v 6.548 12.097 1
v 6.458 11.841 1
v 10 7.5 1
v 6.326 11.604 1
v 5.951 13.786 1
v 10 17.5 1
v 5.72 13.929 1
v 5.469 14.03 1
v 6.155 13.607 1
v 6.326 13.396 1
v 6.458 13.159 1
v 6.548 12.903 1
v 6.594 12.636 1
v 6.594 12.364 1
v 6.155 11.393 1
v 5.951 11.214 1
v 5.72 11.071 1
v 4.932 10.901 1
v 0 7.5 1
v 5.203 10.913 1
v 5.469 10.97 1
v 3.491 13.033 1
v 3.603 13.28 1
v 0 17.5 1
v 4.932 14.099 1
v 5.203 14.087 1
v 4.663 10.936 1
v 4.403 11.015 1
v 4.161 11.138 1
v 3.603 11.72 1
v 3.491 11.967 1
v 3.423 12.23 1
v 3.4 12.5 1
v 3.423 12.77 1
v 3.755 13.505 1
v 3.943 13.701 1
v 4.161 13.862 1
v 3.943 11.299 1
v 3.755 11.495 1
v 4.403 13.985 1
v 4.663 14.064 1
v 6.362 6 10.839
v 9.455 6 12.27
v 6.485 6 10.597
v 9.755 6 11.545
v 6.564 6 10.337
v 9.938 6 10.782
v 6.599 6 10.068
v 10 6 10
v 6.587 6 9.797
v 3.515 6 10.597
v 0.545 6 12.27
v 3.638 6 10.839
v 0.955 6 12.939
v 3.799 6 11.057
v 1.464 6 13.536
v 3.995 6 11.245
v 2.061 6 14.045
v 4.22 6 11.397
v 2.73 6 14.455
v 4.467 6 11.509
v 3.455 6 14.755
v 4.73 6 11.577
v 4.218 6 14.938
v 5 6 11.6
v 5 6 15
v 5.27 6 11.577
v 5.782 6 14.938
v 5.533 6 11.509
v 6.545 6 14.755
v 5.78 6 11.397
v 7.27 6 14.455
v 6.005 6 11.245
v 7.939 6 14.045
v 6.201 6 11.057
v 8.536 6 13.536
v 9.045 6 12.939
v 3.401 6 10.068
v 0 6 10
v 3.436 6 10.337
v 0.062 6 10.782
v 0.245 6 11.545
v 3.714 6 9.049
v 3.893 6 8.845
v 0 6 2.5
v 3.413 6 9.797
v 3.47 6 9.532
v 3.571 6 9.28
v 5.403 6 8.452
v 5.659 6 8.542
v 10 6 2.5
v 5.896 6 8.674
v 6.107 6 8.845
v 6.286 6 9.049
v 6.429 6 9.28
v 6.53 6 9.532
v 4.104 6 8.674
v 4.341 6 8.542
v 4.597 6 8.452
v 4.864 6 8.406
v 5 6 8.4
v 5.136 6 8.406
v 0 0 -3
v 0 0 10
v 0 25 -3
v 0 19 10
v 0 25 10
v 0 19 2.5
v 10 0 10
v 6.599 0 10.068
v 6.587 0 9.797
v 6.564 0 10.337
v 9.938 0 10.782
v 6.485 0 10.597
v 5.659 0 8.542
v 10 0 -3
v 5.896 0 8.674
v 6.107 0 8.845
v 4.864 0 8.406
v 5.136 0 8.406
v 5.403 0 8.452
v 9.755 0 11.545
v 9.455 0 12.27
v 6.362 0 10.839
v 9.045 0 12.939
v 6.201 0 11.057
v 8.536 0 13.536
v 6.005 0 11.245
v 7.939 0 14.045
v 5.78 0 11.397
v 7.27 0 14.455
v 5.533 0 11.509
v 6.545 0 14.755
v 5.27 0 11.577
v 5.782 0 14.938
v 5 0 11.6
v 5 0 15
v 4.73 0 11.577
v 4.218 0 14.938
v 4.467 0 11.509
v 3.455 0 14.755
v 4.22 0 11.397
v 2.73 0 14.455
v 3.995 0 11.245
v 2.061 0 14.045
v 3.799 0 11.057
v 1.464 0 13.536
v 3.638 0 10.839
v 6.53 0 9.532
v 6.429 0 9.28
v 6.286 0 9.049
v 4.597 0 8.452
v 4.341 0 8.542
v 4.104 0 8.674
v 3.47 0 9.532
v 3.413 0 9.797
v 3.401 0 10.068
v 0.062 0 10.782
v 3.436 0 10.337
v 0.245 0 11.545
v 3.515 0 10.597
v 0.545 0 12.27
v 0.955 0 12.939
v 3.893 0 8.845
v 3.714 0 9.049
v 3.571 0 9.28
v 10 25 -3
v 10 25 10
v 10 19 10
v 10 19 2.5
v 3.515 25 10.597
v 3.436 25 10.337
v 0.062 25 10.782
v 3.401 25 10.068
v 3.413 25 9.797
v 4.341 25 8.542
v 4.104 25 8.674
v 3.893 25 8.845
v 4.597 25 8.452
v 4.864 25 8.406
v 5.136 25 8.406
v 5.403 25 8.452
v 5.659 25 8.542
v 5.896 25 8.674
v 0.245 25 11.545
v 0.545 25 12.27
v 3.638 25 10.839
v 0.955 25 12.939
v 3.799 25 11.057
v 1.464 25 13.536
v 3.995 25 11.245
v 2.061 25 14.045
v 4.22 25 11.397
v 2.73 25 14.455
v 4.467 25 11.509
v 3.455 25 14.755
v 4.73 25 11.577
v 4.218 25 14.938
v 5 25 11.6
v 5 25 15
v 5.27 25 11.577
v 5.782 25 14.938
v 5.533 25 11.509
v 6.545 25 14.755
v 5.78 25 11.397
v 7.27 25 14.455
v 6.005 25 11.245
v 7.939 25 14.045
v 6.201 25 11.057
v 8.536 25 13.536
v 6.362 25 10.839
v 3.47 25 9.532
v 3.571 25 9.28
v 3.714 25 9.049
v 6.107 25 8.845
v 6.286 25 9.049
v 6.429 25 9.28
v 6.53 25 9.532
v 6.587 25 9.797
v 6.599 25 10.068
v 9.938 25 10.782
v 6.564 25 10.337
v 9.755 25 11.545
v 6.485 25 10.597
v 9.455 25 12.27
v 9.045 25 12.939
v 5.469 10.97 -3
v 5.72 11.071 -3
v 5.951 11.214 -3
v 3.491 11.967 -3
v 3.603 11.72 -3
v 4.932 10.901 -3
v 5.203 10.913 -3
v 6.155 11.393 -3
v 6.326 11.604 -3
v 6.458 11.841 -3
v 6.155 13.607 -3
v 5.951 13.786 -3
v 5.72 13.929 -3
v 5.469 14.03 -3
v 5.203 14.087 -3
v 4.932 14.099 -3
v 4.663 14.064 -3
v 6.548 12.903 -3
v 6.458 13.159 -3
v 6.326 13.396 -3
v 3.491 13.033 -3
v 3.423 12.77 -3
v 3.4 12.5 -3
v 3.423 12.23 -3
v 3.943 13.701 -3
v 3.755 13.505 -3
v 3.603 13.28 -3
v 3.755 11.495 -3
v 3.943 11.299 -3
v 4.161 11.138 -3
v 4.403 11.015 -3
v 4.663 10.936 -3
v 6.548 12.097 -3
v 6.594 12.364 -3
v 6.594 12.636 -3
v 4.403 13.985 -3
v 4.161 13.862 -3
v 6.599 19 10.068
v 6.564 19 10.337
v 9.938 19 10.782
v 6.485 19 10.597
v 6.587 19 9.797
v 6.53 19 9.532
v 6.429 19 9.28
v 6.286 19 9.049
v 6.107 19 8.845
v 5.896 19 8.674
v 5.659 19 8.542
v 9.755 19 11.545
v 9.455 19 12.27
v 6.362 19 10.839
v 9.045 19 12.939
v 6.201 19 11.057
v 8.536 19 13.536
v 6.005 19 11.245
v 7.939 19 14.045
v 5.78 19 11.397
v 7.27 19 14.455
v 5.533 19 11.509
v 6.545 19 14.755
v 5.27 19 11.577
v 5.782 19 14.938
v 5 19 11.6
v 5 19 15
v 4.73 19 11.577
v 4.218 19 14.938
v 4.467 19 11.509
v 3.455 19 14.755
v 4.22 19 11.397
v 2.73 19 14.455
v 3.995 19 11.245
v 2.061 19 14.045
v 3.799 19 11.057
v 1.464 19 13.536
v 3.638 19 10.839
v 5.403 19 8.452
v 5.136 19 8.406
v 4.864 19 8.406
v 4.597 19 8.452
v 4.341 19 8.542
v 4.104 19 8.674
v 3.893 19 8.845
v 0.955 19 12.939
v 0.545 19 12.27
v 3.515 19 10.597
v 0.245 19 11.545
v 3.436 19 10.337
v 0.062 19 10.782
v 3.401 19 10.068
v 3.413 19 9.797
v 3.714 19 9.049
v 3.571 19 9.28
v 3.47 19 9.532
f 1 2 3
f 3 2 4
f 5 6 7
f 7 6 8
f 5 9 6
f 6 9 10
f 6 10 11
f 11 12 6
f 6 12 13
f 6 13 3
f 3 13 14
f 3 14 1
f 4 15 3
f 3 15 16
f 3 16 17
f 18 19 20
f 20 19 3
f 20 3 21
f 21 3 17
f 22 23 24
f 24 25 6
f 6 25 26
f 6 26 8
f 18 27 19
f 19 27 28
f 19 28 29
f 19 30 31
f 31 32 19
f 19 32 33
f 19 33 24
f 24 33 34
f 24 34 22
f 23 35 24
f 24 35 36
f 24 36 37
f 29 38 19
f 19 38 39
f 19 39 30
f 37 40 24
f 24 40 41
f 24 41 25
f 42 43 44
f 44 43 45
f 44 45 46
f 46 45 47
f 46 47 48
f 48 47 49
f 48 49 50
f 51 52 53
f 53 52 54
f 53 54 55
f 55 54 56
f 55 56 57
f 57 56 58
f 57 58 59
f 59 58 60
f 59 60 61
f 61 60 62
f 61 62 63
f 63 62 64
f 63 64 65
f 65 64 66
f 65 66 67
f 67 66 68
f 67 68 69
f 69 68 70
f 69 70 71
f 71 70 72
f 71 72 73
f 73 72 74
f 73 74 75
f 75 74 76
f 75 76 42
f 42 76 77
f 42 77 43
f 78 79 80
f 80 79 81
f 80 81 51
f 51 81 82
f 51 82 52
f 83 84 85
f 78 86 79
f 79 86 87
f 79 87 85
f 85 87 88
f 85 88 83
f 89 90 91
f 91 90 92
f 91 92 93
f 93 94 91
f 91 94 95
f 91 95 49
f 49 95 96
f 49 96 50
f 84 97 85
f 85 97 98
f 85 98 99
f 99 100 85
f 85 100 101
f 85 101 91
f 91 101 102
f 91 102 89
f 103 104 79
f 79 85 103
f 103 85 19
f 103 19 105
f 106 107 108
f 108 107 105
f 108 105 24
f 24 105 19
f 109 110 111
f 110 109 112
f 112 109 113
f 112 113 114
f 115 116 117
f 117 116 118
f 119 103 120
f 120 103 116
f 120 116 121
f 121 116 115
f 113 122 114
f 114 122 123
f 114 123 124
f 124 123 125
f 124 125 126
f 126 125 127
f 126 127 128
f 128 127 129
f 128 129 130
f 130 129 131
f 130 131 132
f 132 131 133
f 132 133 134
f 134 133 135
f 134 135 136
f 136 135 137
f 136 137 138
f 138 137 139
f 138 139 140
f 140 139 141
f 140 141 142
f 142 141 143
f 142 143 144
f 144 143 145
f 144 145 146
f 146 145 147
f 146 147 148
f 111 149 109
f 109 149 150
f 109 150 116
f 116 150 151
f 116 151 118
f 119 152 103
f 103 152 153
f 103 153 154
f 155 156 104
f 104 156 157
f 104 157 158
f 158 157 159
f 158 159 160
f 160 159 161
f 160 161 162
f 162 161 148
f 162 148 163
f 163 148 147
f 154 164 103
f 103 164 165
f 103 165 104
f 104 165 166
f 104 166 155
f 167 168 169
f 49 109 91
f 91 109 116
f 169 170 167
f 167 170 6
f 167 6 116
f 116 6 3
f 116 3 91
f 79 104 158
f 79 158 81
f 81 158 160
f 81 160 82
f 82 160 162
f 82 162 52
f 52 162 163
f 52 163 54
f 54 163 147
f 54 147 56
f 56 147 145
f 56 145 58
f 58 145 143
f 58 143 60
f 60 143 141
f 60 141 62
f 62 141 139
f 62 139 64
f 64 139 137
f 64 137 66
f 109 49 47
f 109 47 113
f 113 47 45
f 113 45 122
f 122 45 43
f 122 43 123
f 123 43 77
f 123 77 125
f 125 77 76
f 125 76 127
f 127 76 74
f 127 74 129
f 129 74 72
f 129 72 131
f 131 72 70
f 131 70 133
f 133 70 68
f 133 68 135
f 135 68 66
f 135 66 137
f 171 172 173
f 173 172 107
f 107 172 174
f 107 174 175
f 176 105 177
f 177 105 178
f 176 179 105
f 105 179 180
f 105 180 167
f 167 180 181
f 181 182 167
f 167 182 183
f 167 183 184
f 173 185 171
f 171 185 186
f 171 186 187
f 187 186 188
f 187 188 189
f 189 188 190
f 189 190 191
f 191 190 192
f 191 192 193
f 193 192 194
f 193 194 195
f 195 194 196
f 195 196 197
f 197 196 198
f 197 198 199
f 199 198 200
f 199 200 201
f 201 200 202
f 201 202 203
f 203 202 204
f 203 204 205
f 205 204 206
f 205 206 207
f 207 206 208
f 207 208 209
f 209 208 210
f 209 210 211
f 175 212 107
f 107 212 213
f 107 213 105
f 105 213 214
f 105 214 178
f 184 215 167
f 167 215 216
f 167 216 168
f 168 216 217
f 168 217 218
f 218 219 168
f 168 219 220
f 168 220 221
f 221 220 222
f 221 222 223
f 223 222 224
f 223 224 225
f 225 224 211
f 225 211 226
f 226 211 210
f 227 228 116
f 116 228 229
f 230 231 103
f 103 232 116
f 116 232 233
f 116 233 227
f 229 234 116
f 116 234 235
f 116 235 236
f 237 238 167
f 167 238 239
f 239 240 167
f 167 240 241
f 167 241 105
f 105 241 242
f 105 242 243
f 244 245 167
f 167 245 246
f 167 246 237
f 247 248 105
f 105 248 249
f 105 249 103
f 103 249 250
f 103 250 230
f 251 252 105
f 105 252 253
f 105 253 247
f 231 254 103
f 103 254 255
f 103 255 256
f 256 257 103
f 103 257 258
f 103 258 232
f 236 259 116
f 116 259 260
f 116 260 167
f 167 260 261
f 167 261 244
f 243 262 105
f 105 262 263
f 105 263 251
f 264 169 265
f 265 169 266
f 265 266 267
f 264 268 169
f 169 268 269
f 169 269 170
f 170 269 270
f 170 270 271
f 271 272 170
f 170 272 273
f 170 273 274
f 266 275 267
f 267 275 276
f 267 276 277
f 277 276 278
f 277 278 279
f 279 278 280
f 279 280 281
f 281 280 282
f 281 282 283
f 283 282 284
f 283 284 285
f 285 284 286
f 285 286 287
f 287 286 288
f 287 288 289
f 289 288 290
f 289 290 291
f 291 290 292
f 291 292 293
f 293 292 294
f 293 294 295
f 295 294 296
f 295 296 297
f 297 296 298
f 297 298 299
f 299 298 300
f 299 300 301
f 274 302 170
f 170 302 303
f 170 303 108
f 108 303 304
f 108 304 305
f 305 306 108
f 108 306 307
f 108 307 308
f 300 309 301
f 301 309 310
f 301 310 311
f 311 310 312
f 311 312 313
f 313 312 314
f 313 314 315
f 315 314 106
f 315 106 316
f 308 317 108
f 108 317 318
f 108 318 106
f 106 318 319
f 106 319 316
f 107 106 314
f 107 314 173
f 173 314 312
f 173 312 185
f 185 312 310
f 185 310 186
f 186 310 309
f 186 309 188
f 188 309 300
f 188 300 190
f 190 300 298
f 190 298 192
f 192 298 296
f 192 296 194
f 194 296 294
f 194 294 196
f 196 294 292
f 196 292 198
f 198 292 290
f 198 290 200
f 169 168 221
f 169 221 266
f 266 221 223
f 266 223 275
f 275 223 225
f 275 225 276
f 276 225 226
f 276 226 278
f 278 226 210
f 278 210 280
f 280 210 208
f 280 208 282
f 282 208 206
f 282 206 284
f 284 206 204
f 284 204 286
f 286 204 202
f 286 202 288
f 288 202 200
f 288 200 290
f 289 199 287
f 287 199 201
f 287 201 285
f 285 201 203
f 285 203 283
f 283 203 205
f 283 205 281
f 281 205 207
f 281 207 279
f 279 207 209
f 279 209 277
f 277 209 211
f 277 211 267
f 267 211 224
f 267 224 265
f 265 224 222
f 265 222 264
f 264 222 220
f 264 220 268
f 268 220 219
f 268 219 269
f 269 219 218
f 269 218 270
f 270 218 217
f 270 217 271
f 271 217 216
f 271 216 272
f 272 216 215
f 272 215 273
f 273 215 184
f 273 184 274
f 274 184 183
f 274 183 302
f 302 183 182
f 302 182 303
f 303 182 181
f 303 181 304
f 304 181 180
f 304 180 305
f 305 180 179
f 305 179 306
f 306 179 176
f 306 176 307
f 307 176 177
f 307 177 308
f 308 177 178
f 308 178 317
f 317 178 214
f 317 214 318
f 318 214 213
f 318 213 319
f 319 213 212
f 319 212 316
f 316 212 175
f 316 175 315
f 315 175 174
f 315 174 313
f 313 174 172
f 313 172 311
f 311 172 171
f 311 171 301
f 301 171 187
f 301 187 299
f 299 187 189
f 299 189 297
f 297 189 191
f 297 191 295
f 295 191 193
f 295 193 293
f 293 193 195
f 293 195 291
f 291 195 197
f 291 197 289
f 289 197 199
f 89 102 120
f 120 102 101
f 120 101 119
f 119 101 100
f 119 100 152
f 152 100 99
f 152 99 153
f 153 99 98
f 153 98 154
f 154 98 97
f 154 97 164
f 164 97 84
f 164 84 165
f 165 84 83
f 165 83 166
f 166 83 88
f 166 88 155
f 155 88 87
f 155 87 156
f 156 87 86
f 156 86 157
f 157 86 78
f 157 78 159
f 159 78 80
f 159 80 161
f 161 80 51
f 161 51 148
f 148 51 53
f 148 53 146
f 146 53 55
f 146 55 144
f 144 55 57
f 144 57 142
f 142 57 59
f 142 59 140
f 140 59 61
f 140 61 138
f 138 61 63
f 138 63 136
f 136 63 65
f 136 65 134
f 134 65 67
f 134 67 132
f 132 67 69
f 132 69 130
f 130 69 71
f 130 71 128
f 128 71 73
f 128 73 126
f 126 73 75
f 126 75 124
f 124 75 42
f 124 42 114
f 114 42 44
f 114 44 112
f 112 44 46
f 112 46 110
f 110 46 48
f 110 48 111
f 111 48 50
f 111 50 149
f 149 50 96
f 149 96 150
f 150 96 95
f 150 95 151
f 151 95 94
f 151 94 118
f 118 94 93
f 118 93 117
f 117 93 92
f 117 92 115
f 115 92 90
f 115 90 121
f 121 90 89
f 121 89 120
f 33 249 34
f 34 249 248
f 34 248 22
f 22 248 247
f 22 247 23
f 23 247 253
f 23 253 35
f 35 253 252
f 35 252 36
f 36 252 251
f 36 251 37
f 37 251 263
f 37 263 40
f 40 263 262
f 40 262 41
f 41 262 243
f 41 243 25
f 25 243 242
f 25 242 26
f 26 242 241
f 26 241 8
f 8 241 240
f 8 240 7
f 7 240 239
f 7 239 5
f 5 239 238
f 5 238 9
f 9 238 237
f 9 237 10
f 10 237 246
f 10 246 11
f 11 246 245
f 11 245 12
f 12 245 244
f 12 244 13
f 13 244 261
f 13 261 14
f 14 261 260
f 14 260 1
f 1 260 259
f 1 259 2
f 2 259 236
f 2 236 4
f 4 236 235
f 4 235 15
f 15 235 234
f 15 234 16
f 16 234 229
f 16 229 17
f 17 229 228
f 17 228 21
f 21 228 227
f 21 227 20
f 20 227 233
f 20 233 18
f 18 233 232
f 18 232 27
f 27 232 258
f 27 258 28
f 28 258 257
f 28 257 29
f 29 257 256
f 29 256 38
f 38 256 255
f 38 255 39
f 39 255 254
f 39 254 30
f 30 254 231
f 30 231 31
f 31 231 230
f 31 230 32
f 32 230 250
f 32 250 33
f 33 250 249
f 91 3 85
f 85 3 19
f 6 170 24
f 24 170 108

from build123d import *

# Parameters (mm, degrees)
SKETCH1_W                = 10
SKETCH1_H                = 6
BOSS_EXTRUDE1_DEPTH      = 15
BOSS_EXTRUDE1_2_DEPTH    = 15
FILLET1_R                = 5
FILLET2_R                = 5
BOSS_EXTRUDE2_DEPTH      = 3
BOSS_EXTRUDE2_DEPTH_BACK = 1
SKETCH2_W                = 10
SKETCH2_H                = 25
SKETCH3_R                = 1.6
CUT_EXTRUDE1_DEPTH       = 31.822070015
CUT_EXTRUDE2_REACH       = 34.388
SKETCH4_R                = 1.6
CHAMFER1_SIZE            = 1.5


with BuildPart() as part:
    # Sketch1 → Boss-Extrude1 (new body)
    with BuildSketch(Plane.XY):
        with Locations((5, 3)):
            Rectangle(SKETCH1_W, SKETCH1_H)
    extrude(amount=BOSS_EXTRUDE1_DEPTH)

    # Fillet2
    fillet2_edges = [part.edges().sort_by_distance(p)[0] for p in [
        (10, 3, 15),
        (0, 3, 15),
    ]]
    fillet(fillet2_edges, radius=FILLET2_R - 0.0001)  # a hair under: the kernel refuses the full size



with BuildPart() as body_2:
    # Sketch1 → Boss-Extrude1 2 (new body)
    with BuildSketch(Plane.XY):
        with Locations((5, 22)):
            Rectangle(SKETCH1_W, SKETCH1_H)
    extrude(amount=BOSS_EXTRUDE1_2_DEPTH)

    # Fillet1
    fillet1_edges = [body_2.edges().sort_by_distance(p)[0] for p in [
        (10, 22, 15),
        (0, 22, 15),
    ]]
    fillet(fillet1_edges, radius=FILLET1_R - 0.0001)  # a hair under: the kernel refuses the full size


with BuildPart() as part_1:
    add(part.part)

    add(body_2.part)  # Boss-Extrude2 merges body 2
    # Sketch2 → Boss-Extrude2 (add, two sides: drawn at the far end of the back side and taken through both)
    with BuildSketch(Plane(origin=(0, 0, 0), x_dir=(-1, 0, 0), z_dir=(0, 0, -1)).offset(-BOSS_EXTRUDE2_DEPTH_BACK)):
        with Locations((-5, 12.5)):
            Rectangle(SKETCH2_W, SKETCH2_H)
    extrude(amount=BOSS_EXTRUDE2_DEPTH + BOSS_EXTRUDE2_DEPTH_BACK)

    # Sketch3 → Cut-Extrude1 (cut, through all)
    with BuildSketch(Plane(origin=(0, 25, 0), x_dir=(1, 0, 0), z_dir=(0, 1, 0))):
        with Locations(Location((5, -10, 0), (0, 0, 270))):
            Circle(SKETCH3_R)
    extrude(amount=-CUT_EXTRUDE1_DEPTH, mode=Mode.SUBTRACT)

    # Sketch4 → Cut-Extrude2 (cut, up to next)
    with BuildSketch(Plane(origin=(0, 0, -3), x_dir=(-1, 0, 0), z_dir=(0, 0, -1)), mode=Mode.PRIVATE) as cut_extrude2_sk1:
        with Locations((-5, 12.5)):
            Circle(SKETCH4_R)
    cut_extrude2_tool1 = extrude(cut_extrude2_sk1.sketch, amount=-CUT_EXTRUDE2_REACH, mode=Mode.PRIVATE) & part_1.part
    add(cut_extrude2_tool1.solids().sort_by_distance((5, 12.5, -3))[0], mode=Mode.SUBTRACT)

    # Chamfer1
    chamfer1_edges = [part_1.edges().sort_by_distance(p)[0] for p in [
        (5, 6, 1),
        (5, 19, 1),
    ]]
    chamfer(chamfer1_edges, length=CHAMFER1_SIZE)


solid = part_1.part
